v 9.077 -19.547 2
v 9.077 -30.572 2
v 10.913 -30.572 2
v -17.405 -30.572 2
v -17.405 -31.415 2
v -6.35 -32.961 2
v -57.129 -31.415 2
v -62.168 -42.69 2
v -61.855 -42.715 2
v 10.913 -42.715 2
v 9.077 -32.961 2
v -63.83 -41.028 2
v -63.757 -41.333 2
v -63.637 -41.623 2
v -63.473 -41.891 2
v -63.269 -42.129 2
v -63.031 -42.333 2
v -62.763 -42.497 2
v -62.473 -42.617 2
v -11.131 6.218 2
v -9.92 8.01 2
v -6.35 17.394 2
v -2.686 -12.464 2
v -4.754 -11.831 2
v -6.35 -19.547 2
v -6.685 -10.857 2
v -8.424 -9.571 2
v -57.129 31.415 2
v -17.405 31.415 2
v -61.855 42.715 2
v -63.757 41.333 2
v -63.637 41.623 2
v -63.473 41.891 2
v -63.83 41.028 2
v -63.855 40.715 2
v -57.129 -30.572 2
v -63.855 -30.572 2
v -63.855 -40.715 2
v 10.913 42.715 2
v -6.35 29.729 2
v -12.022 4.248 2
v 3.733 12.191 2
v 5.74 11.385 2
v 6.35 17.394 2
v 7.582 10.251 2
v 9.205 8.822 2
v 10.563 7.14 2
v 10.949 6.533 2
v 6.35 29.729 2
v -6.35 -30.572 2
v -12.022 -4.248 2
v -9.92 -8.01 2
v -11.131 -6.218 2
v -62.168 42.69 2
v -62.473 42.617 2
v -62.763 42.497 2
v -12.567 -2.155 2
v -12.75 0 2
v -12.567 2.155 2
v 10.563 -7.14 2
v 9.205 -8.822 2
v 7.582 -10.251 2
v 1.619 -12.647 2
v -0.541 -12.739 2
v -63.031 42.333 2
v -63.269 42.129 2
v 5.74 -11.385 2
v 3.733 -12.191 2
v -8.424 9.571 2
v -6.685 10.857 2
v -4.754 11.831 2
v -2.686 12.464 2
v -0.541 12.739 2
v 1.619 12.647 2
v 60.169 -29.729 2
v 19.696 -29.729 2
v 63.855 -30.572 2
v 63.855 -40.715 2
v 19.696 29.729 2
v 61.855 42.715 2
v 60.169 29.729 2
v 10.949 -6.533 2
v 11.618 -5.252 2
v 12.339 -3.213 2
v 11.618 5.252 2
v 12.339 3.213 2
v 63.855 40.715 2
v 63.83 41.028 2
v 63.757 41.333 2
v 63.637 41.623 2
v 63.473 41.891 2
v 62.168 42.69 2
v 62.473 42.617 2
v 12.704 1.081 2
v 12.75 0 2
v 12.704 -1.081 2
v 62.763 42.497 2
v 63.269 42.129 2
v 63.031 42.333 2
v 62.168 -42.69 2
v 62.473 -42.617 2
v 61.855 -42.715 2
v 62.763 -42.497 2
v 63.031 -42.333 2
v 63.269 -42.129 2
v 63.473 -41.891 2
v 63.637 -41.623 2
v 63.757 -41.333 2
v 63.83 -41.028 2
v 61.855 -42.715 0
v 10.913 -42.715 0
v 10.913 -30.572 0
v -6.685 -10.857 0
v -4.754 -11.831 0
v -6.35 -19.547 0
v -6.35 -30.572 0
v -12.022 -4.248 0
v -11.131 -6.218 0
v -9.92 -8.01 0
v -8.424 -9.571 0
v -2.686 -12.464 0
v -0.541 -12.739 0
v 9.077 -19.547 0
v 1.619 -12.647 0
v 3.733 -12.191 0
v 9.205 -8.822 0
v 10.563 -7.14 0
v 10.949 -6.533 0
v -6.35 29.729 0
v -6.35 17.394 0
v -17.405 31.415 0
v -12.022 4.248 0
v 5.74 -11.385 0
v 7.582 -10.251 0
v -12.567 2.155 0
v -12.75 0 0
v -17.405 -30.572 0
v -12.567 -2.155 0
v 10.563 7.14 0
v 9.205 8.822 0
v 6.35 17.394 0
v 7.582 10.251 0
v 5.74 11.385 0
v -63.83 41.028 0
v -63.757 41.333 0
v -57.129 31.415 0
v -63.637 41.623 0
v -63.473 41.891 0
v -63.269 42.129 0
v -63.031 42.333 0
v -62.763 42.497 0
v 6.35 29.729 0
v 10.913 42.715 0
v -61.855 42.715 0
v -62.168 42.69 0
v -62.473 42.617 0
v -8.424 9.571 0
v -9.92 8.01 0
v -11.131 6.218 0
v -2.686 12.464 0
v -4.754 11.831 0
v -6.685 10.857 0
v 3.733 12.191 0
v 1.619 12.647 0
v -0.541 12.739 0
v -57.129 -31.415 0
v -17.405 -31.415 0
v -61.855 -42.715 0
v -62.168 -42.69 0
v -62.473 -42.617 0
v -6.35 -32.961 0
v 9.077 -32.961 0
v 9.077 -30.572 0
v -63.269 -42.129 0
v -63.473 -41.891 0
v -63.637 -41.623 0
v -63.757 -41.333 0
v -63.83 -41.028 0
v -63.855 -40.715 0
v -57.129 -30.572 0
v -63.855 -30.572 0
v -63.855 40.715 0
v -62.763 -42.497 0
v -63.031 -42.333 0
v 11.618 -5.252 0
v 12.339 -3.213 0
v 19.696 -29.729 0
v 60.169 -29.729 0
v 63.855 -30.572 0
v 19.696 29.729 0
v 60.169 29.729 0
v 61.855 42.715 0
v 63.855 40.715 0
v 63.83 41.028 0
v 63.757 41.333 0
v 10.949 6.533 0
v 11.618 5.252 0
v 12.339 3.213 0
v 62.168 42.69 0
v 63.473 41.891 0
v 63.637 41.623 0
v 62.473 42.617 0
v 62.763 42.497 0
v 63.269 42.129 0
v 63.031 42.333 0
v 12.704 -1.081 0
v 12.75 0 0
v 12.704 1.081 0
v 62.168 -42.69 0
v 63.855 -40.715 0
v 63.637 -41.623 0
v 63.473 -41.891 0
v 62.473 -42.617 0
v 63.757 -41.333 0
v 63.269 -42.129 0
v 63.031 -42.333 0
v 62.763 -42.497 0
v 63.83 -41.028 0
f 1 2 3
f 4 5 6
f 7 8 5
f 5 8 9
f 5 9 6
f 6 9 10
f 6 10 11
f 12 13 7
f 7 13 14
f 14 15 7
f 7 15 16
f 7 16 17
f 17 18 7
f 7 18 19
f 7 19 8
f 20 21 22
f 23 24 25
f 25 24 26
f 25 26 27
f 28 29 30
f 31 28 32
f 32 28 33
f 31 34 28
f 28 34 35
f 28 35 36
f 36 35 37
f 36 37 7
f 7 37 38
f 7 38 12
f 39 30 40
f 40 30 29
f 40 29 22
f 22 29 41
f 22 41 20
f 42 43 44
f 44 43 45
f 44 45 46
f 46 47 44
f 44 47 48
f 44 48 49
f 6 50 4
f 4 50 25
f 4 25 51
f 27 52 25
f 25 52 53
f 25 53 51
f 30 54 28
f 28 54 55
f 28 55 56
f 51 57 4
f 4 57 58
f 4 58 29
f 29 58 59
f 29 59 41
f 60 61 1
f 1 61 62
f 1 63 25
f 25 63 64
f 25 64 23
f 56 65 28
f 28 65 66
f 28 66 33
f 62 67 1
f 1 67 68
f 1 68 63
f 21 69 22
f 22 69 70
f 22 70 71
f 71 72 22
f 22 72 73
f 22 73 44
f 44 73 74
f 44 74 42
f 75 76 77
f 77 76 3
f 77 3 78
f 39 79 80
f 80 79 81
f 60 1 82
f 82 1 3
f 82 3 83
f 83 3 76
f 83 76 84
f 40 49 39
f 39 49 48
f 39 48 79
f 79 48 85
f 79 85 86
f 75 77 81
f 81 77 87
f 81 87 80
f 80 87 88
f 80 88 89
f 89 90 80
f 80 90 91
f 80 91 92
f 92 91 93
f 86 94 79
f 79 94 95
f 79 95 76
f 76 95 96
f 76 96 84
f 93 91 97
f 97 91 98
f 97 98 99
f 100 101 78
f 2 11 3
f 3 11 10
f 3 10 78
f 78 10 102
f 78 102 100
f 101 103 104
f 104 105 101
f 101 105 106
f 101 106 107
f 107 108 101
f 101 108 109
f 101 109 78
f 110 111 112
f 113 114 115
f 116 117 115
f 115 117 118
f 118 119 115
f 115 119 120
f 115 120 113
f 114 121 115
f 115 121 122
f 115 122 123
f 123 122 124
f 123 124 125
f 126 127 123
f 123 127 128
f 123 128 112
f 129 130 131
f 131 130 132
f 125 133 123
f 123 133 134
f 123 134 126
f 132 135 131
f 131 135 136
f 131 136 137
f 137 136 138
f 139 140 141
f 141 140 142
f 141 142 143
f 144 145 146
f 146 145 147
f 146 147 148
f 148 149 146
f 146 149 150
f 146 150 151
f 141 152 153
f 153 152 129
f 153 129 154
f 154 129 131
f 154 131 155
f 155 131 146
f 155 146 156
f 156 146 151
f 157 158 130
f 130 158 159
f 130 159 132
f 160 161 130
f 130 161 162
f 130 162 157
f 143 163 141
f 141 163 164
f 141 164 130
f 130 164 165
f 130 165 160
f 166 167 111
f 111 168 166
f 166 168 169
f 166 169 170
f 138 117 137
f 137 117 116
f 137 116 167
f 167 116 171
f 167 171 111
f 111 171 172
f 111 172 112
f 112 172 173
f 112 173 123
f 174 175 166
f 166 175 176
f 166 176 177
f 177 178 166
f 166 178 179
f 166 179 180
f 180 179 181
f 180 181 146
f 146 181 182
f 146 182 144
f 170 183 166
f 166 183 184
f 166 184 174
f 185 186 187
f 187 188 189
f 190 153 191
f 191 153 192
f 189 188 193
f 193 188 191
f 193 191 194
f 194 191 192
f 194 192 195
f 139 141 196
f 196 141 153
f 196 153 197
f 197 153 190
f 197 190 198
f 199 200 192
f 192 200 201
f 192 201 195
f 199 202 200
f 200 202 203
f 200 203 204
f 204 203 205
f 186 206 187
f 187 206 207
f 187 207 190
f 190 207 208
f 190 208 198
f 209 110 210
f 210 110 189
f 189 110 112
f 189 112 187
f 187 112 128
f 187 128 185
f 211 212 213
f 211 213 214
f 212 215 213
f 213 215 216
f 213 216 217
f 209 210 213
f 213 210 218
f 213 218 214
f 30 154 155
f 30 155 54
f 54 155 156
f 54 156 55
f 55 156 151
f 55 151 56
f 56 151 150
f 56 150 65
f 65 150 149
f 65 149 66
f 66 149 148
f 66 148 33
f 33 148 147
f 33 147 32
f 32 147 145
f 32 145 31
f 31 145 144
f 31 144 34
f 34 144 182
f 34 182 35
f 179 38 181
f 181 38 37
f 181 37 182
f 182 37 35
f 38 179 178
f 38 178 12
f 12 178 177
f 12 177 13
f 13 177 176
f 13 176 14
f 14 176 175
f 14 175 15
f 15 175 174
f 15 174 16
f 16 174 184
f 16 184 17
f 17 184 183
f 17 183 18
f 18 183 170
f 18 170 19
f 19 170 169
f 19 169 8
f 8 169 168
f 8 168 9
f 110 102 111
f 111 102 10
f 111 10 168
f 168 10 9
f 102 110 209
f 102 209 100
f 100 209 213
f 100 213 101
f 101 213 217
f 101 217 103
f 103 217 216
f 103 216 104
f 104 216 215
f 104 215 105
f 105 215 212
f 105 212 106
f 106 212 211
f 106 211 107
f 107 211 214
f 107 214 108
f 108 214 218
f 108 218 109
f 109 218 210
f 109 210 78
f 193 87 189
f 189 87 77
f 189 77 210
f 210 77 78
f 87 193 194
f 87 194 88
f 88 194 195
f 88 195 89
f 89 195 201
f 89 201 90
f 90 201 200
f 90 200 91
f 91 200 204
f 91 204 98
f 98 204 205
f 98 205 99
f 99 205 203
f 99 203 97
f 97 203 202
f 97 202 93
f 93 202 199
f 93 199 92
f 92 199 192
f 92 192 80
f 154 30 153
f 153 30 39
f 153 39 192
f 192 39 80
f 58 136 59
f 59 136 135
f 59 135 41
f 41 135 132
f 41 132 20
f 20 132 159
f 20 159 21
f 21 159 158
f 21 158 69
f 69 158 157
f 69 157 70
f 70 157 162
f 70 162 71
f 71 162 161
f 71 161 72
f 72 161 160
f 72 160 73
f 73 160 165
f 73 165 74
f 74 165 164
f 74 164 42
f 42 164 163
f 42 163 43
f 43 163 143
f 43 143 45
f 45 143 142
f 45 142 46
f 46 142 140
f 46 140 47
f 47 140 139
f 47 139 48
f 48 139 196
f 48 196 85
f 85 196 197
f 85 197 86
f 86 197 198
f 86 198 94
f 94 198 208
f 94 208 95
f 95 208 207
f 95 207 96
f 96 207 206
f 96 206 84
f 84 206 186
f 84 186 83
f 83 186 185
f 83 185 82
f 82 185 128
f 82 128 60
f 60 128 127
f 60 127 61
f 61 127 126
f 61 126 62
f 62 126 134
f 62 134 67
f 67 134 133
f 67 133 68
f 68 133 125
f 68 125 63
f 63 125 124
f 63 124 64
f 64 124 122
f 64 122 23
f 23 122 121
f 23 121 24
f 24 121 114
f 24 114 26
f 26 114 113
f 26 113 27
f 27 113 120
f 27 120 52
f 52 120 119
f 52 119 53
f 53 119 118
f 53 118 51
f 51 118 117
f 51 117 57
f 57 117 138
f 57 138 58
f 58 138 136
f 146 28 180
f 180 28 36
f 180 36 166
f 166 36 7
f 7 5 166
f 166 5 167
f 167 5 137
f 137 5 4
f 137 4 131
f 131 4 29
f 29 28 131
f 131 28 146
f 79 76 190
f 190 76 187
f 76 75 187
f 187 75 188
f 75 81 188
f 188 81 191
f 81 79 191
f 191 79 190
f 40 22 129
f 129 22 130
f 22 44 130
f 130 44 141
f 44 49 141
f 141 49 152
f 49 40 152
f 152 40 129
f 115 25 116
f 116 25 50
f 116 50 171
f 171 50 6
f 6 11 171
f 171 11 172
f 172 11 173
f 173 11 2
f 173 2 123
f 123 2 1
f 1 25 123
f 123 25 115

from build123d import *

# Parameters (mm, degrees)
SKETCH1_R           = 12.75
SKETCH1_W           = 39.723964685
SKETCH1_H           = 62.830636574
SKETCH1_W_2         = 40.473473452
SKETCH1_H_2         = 59.45784712
SKETCH1_W_3         = 12.699510432
SKETCH1_H_3         = 12.334572549
SKETCH1_W_4         = 15.426505011
SKETCH1_H_4         = 13.414238347
BOSS_EXTRUDE1_DEPTH = 2


with BuildPart() as part:
    # Sketch1 → Boss-Extrude1 (new body)
    with BuildSketch(Plane.XY):
        with BuildLine():
            Line((61.855, -42.715), (-61.855, -42.715))
            ThreePointArc((-61.855, -42.715), (-63.269213562, -42.129213562), (-63.855, -40.715))
            Line((-63.855, -40.715), (-63.855, 40.715))
            ThreePointArc((-63.855, 40.715), (-63.269213562, 42.129213562), (-61.855, 42.715))
            Line((-61.855, 42.715), (61.855, 42.715))
            ThreePointArc((61.855, 42.715), (63.269213562, 42.129213562), (63.855, 40.715))
            Line((63.855, 40.715), (63.855, -40.715))
            ThreePointArc((63.855, -40.715), (63.269213562, -42.129213562), (61.855, -42.715))
        make_face()
        Circle(SKETCH1_R, mode=Mode.SUBTRACT)
        with Locations((-37.266991881, 0)):
            Rectangle(SKETCH1_W, SKETCH1_H, mode=Mode.SUBTRACT)
        with Locations((39.932411186, 0)):
            Rectangle(SKETCH1_W_2, SKETCH1_H_2, mode=Mode.SUBTRACT)
        with Locations((0, 23.561637286)):
            Rectangle(SKETCH1_W_3, SKETCH1_H_3, mode=Mode.SUBTRACT)
        with Locations((1.36349729, -26.254195002)):
            Rectangle(SKETCH1_W_4, SKETCH1_H_4, mode=Mode.SUBTRACT)
    extrude(amount=BOSS_EXTRUDE1_DEPTH)


solid = part.part
